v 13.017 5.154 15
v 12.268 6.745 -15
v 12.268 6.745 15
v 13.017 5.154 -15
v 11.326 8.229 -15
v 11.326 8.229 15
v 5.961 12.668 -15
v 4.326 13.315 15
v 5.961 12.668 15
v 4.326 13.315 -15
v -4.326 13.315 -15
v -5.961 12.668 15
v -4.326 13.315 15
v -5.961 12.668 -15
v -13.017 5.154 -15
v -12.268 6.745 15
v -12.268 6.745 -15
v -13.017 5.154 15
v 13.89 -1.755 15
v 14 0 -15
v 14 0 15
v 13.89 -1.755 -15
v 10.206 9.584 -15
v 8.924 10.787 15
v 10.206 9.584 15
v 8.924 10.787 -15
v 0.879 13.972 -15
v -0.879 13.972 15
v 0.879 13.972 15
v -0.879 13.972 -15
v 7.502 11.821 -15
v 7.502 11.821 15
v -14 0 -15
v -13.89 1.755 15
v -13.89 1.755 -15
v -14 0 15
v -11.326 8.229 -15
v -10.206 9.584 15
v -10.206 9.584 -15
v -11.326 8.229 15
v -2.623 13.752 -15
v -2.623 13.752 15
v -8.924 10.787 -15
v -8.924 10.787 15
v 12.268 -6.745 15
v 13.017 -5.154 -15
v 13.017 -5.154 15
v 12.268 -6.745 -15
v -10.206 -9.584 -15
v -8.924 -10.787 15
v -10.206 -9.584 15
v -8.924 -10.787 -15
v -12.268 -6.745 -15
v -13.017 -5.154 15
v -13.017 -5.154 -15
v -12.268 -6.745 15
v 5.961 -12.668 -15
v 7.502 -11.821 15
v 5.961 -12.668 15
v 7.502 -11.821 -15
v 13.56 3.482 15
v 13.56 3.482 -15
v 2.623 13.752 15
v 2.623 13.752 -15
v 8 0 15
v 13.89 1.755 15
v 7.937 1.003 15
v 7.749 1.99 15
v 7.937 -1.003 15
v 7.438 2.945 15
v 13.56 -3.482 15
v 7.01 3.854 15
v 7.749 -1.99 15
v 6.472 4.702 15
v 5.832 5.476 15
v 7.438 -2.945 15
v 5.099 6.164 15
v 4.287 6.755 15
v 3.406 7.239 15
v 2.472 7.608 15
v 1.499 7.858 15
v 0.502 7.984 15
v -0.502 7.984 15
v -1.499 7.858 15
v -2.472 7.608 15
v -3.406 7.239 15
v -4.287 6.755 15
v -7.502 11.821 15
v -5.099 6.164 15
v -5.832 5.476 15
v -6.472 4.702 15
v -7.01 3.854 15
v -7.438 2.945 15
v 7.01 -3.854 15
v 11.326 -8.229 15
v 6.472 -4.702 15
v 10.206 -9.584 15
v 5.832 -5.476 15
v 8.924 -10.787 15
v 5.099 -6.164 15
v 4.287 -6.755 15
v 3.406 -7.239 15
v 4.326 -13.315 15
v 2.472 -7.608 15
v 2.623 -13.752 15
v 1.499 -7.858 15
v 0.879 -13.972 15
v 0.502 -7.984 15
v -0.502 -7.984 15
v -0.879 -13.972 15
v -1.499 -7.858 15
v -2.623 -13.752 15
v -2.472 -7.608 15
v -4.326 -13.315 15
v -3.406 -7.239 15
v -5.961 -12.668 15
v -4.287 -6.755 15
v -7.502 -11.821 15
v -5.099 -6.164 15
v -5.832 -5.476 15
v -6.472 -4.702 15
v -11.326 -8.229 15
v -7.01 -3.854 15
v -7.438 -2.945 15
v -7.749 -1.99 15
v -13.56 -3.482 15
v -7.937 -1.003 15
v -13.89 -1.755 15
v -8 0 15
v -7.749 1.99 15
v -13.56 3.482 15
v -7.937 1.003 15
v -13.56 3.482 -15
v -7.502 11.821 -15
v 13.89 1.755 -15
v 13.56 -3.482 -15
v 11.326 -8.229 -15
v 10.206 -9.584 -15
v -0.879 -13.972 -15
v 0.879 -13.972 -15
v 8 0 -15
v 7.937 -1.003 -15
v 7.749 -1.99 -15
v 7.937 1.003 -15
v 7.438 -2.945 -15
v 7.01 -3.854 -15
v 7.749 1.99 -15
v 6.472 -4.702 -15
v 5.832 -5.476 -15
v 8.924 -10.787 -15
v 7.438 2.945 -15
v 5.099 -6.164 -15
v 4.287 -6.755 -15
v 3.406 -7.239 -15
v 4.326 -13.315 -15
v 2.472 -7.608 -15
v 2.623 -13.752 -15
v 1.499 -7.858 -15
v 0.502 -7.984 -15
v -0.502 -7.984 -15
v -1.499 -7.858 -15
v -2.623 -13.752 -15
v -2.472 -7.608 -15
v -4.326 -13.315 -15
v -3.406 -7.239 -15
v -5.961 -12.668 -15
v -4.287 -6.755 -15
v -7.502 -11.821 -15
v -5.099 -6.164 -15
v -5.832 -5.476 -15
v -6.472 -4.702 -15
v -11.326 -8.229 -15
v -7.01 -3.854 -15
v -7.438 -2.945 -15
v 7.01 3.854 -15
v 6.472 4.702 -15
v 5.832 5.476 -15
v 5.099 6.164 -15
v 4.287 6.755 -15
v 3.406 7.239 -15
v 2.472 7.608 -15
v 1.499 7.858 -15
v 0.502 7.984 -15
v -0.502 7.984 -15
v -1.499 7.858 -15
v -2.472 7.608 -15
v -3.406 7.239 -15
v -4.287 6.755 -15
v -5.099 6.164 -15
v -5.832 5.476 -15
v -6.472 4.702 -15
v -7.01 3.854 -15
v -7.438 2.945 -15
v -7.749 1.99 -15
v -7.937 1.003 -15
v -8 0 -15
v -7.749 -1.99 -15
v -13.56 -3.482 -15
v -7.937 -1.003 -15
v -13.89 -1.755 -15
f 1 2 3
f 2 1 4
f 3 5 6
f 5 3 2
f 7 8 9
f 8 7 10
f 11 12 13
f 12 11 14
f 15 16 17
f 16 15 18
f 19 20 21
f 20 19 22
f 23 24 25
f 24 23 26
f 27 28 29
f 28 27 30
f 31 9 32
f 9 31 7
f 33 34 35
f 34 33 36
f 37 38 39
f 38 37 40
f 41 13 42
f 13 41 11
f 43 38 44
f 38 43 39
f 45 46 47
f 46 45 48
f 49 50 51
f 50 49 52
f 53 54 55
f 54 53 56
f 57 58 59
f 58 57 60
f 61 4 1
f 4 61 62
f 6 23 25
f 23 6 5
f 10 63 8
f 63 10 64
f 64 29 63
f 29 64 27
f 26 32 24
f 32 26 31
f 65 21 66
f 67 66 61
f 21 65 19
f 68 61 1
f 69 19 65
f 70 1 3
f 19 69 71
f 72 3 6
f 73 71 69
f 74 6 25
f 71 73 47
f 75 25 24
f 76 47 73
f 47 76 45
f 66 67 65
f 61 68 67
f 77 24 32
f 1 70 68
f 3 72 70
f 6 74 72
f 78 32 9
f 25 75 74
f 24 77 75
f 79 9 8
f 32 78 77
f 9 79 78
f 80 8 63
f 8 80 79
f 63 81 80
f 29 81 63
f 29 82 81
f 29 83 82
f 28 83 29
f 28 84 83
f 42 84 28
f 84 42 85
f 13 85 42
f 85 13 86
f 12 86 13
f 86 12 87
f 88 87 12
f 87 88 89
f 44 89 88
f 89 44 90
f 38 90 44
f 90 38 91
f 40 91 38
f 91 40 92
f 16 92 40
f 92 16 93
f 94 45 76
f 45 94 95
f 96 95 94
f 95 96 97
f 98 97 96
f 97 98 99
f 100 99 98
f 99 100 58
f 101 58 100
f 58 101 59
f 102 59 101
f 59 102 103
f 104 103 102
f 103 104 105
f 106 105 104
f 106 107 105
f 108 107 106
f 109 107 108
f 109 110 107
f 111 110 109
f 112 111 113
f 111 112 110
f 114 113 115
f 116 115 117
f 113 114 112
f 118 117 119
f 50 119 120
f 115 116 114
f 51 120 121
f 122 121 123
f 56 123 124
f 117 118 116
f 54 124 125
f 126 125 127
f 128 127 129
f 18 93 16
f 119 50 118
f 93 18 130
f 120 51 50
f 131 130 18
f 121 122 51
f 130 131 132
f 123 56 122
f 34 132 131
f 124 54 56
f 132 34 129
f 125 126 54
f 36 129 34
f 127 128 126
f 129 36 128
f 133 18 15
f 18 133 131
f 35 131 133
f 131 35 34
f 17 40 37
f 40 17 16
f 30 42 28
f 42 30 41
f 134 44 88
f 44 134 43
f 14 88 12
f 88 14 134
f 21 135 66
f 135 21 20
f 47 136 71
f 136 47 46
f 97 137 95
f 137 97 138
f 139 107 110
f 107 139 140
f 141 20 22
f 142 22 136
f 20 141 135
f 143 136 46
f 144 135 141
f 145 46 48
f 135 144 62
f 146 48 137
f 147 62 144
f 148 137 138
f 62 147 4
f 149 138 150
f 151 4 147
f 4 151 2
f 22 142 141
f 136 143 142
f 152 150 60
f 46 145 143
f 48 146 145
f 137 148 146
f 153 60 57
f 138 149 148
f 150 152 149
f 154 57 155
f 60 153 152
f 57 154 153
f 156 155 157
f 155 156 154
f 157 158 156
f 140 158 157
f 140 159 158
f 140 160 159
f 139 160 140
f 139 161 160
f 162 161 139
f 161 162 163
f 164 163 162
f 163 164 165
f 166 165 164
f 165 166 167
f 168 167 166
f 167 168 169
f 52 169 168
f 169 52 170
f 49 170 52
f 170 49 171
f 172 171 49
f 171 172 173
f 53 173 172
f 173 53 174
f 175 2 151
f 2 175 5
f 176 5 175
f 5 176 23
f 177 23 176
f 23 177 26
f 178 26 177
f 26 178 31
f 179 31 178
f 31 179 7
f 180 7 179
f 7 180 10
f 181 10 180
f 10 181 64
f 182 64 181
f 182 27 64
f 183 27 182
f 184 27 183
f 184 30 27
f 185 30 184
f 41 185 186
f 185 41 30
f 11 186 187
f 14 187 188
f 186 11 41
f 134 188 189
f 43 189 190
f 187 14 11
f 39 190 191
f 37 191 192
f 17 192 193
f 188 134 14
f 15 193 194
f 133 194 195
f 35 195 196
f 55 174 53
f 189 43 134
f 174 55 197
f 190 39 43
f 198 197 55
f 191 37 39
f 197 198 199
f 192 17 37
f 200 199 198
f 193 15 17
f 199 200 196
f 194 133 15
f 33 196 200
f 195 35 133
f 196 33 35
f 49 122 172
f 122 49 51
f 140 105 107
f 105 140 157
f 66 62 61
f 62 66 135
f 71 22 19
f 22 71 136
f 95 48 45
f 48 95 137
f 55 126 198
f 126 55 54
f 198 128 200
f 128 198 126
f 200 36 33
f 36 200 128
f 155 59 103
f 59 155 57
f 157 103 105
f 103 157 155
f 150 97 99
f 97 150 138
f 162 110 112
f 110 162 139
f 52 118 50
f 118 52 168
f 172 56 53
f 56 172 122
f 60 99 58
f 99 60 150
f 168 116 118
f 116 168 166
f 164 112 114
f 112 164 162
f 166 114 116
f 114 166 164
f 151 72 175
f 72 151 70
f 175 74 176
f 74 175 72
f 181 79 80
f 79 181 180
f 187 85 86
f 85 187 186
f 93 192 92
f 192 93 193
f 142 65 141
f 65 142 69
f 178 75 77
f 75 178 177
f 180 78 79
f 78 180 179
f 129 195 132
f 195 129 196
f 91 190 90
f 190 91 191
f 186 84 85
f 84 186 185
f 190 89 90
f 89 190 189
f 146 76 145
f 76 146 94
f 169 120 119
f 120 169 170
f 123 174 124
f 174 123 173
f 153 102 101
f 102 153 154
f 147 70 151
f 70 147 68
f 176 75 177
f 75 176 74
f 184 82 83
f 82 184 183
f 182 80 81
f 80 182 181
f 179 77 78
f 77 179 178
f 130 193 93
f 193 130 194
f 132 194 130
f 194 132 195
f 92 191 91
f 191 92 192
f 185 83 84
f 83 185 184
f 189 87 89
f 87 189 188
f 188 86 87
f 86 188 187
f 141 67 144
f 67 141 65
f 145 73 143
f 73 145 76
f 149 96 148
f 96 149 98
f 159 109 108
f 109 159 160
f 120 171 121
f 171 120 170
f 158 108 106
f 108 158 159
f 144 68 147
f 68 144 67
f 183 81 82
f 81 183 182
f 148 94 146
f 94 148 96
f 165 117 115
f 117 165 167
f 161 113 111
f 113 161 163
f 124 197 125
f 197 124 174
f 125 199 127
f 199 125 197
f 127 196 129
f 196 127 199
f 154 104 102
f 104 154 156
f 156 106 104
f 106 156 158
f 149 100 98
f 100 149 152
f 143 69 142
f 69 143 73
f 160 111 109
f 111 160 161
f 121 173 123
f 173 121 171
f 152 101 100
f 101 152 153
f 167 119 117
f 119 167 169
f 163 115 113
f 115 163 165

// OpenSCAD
$fn = 50;


difference() {
	union() {
		translate(v = [0, 0, -15.0000000000]) {
			cylinder(h = 30, r = 14.0000000000);
		}
	}
	union() {
		translate(v = [0, 0, -100.0000000000]) {
			cylinder(h = 200, r = 8);
		}
	}
}
